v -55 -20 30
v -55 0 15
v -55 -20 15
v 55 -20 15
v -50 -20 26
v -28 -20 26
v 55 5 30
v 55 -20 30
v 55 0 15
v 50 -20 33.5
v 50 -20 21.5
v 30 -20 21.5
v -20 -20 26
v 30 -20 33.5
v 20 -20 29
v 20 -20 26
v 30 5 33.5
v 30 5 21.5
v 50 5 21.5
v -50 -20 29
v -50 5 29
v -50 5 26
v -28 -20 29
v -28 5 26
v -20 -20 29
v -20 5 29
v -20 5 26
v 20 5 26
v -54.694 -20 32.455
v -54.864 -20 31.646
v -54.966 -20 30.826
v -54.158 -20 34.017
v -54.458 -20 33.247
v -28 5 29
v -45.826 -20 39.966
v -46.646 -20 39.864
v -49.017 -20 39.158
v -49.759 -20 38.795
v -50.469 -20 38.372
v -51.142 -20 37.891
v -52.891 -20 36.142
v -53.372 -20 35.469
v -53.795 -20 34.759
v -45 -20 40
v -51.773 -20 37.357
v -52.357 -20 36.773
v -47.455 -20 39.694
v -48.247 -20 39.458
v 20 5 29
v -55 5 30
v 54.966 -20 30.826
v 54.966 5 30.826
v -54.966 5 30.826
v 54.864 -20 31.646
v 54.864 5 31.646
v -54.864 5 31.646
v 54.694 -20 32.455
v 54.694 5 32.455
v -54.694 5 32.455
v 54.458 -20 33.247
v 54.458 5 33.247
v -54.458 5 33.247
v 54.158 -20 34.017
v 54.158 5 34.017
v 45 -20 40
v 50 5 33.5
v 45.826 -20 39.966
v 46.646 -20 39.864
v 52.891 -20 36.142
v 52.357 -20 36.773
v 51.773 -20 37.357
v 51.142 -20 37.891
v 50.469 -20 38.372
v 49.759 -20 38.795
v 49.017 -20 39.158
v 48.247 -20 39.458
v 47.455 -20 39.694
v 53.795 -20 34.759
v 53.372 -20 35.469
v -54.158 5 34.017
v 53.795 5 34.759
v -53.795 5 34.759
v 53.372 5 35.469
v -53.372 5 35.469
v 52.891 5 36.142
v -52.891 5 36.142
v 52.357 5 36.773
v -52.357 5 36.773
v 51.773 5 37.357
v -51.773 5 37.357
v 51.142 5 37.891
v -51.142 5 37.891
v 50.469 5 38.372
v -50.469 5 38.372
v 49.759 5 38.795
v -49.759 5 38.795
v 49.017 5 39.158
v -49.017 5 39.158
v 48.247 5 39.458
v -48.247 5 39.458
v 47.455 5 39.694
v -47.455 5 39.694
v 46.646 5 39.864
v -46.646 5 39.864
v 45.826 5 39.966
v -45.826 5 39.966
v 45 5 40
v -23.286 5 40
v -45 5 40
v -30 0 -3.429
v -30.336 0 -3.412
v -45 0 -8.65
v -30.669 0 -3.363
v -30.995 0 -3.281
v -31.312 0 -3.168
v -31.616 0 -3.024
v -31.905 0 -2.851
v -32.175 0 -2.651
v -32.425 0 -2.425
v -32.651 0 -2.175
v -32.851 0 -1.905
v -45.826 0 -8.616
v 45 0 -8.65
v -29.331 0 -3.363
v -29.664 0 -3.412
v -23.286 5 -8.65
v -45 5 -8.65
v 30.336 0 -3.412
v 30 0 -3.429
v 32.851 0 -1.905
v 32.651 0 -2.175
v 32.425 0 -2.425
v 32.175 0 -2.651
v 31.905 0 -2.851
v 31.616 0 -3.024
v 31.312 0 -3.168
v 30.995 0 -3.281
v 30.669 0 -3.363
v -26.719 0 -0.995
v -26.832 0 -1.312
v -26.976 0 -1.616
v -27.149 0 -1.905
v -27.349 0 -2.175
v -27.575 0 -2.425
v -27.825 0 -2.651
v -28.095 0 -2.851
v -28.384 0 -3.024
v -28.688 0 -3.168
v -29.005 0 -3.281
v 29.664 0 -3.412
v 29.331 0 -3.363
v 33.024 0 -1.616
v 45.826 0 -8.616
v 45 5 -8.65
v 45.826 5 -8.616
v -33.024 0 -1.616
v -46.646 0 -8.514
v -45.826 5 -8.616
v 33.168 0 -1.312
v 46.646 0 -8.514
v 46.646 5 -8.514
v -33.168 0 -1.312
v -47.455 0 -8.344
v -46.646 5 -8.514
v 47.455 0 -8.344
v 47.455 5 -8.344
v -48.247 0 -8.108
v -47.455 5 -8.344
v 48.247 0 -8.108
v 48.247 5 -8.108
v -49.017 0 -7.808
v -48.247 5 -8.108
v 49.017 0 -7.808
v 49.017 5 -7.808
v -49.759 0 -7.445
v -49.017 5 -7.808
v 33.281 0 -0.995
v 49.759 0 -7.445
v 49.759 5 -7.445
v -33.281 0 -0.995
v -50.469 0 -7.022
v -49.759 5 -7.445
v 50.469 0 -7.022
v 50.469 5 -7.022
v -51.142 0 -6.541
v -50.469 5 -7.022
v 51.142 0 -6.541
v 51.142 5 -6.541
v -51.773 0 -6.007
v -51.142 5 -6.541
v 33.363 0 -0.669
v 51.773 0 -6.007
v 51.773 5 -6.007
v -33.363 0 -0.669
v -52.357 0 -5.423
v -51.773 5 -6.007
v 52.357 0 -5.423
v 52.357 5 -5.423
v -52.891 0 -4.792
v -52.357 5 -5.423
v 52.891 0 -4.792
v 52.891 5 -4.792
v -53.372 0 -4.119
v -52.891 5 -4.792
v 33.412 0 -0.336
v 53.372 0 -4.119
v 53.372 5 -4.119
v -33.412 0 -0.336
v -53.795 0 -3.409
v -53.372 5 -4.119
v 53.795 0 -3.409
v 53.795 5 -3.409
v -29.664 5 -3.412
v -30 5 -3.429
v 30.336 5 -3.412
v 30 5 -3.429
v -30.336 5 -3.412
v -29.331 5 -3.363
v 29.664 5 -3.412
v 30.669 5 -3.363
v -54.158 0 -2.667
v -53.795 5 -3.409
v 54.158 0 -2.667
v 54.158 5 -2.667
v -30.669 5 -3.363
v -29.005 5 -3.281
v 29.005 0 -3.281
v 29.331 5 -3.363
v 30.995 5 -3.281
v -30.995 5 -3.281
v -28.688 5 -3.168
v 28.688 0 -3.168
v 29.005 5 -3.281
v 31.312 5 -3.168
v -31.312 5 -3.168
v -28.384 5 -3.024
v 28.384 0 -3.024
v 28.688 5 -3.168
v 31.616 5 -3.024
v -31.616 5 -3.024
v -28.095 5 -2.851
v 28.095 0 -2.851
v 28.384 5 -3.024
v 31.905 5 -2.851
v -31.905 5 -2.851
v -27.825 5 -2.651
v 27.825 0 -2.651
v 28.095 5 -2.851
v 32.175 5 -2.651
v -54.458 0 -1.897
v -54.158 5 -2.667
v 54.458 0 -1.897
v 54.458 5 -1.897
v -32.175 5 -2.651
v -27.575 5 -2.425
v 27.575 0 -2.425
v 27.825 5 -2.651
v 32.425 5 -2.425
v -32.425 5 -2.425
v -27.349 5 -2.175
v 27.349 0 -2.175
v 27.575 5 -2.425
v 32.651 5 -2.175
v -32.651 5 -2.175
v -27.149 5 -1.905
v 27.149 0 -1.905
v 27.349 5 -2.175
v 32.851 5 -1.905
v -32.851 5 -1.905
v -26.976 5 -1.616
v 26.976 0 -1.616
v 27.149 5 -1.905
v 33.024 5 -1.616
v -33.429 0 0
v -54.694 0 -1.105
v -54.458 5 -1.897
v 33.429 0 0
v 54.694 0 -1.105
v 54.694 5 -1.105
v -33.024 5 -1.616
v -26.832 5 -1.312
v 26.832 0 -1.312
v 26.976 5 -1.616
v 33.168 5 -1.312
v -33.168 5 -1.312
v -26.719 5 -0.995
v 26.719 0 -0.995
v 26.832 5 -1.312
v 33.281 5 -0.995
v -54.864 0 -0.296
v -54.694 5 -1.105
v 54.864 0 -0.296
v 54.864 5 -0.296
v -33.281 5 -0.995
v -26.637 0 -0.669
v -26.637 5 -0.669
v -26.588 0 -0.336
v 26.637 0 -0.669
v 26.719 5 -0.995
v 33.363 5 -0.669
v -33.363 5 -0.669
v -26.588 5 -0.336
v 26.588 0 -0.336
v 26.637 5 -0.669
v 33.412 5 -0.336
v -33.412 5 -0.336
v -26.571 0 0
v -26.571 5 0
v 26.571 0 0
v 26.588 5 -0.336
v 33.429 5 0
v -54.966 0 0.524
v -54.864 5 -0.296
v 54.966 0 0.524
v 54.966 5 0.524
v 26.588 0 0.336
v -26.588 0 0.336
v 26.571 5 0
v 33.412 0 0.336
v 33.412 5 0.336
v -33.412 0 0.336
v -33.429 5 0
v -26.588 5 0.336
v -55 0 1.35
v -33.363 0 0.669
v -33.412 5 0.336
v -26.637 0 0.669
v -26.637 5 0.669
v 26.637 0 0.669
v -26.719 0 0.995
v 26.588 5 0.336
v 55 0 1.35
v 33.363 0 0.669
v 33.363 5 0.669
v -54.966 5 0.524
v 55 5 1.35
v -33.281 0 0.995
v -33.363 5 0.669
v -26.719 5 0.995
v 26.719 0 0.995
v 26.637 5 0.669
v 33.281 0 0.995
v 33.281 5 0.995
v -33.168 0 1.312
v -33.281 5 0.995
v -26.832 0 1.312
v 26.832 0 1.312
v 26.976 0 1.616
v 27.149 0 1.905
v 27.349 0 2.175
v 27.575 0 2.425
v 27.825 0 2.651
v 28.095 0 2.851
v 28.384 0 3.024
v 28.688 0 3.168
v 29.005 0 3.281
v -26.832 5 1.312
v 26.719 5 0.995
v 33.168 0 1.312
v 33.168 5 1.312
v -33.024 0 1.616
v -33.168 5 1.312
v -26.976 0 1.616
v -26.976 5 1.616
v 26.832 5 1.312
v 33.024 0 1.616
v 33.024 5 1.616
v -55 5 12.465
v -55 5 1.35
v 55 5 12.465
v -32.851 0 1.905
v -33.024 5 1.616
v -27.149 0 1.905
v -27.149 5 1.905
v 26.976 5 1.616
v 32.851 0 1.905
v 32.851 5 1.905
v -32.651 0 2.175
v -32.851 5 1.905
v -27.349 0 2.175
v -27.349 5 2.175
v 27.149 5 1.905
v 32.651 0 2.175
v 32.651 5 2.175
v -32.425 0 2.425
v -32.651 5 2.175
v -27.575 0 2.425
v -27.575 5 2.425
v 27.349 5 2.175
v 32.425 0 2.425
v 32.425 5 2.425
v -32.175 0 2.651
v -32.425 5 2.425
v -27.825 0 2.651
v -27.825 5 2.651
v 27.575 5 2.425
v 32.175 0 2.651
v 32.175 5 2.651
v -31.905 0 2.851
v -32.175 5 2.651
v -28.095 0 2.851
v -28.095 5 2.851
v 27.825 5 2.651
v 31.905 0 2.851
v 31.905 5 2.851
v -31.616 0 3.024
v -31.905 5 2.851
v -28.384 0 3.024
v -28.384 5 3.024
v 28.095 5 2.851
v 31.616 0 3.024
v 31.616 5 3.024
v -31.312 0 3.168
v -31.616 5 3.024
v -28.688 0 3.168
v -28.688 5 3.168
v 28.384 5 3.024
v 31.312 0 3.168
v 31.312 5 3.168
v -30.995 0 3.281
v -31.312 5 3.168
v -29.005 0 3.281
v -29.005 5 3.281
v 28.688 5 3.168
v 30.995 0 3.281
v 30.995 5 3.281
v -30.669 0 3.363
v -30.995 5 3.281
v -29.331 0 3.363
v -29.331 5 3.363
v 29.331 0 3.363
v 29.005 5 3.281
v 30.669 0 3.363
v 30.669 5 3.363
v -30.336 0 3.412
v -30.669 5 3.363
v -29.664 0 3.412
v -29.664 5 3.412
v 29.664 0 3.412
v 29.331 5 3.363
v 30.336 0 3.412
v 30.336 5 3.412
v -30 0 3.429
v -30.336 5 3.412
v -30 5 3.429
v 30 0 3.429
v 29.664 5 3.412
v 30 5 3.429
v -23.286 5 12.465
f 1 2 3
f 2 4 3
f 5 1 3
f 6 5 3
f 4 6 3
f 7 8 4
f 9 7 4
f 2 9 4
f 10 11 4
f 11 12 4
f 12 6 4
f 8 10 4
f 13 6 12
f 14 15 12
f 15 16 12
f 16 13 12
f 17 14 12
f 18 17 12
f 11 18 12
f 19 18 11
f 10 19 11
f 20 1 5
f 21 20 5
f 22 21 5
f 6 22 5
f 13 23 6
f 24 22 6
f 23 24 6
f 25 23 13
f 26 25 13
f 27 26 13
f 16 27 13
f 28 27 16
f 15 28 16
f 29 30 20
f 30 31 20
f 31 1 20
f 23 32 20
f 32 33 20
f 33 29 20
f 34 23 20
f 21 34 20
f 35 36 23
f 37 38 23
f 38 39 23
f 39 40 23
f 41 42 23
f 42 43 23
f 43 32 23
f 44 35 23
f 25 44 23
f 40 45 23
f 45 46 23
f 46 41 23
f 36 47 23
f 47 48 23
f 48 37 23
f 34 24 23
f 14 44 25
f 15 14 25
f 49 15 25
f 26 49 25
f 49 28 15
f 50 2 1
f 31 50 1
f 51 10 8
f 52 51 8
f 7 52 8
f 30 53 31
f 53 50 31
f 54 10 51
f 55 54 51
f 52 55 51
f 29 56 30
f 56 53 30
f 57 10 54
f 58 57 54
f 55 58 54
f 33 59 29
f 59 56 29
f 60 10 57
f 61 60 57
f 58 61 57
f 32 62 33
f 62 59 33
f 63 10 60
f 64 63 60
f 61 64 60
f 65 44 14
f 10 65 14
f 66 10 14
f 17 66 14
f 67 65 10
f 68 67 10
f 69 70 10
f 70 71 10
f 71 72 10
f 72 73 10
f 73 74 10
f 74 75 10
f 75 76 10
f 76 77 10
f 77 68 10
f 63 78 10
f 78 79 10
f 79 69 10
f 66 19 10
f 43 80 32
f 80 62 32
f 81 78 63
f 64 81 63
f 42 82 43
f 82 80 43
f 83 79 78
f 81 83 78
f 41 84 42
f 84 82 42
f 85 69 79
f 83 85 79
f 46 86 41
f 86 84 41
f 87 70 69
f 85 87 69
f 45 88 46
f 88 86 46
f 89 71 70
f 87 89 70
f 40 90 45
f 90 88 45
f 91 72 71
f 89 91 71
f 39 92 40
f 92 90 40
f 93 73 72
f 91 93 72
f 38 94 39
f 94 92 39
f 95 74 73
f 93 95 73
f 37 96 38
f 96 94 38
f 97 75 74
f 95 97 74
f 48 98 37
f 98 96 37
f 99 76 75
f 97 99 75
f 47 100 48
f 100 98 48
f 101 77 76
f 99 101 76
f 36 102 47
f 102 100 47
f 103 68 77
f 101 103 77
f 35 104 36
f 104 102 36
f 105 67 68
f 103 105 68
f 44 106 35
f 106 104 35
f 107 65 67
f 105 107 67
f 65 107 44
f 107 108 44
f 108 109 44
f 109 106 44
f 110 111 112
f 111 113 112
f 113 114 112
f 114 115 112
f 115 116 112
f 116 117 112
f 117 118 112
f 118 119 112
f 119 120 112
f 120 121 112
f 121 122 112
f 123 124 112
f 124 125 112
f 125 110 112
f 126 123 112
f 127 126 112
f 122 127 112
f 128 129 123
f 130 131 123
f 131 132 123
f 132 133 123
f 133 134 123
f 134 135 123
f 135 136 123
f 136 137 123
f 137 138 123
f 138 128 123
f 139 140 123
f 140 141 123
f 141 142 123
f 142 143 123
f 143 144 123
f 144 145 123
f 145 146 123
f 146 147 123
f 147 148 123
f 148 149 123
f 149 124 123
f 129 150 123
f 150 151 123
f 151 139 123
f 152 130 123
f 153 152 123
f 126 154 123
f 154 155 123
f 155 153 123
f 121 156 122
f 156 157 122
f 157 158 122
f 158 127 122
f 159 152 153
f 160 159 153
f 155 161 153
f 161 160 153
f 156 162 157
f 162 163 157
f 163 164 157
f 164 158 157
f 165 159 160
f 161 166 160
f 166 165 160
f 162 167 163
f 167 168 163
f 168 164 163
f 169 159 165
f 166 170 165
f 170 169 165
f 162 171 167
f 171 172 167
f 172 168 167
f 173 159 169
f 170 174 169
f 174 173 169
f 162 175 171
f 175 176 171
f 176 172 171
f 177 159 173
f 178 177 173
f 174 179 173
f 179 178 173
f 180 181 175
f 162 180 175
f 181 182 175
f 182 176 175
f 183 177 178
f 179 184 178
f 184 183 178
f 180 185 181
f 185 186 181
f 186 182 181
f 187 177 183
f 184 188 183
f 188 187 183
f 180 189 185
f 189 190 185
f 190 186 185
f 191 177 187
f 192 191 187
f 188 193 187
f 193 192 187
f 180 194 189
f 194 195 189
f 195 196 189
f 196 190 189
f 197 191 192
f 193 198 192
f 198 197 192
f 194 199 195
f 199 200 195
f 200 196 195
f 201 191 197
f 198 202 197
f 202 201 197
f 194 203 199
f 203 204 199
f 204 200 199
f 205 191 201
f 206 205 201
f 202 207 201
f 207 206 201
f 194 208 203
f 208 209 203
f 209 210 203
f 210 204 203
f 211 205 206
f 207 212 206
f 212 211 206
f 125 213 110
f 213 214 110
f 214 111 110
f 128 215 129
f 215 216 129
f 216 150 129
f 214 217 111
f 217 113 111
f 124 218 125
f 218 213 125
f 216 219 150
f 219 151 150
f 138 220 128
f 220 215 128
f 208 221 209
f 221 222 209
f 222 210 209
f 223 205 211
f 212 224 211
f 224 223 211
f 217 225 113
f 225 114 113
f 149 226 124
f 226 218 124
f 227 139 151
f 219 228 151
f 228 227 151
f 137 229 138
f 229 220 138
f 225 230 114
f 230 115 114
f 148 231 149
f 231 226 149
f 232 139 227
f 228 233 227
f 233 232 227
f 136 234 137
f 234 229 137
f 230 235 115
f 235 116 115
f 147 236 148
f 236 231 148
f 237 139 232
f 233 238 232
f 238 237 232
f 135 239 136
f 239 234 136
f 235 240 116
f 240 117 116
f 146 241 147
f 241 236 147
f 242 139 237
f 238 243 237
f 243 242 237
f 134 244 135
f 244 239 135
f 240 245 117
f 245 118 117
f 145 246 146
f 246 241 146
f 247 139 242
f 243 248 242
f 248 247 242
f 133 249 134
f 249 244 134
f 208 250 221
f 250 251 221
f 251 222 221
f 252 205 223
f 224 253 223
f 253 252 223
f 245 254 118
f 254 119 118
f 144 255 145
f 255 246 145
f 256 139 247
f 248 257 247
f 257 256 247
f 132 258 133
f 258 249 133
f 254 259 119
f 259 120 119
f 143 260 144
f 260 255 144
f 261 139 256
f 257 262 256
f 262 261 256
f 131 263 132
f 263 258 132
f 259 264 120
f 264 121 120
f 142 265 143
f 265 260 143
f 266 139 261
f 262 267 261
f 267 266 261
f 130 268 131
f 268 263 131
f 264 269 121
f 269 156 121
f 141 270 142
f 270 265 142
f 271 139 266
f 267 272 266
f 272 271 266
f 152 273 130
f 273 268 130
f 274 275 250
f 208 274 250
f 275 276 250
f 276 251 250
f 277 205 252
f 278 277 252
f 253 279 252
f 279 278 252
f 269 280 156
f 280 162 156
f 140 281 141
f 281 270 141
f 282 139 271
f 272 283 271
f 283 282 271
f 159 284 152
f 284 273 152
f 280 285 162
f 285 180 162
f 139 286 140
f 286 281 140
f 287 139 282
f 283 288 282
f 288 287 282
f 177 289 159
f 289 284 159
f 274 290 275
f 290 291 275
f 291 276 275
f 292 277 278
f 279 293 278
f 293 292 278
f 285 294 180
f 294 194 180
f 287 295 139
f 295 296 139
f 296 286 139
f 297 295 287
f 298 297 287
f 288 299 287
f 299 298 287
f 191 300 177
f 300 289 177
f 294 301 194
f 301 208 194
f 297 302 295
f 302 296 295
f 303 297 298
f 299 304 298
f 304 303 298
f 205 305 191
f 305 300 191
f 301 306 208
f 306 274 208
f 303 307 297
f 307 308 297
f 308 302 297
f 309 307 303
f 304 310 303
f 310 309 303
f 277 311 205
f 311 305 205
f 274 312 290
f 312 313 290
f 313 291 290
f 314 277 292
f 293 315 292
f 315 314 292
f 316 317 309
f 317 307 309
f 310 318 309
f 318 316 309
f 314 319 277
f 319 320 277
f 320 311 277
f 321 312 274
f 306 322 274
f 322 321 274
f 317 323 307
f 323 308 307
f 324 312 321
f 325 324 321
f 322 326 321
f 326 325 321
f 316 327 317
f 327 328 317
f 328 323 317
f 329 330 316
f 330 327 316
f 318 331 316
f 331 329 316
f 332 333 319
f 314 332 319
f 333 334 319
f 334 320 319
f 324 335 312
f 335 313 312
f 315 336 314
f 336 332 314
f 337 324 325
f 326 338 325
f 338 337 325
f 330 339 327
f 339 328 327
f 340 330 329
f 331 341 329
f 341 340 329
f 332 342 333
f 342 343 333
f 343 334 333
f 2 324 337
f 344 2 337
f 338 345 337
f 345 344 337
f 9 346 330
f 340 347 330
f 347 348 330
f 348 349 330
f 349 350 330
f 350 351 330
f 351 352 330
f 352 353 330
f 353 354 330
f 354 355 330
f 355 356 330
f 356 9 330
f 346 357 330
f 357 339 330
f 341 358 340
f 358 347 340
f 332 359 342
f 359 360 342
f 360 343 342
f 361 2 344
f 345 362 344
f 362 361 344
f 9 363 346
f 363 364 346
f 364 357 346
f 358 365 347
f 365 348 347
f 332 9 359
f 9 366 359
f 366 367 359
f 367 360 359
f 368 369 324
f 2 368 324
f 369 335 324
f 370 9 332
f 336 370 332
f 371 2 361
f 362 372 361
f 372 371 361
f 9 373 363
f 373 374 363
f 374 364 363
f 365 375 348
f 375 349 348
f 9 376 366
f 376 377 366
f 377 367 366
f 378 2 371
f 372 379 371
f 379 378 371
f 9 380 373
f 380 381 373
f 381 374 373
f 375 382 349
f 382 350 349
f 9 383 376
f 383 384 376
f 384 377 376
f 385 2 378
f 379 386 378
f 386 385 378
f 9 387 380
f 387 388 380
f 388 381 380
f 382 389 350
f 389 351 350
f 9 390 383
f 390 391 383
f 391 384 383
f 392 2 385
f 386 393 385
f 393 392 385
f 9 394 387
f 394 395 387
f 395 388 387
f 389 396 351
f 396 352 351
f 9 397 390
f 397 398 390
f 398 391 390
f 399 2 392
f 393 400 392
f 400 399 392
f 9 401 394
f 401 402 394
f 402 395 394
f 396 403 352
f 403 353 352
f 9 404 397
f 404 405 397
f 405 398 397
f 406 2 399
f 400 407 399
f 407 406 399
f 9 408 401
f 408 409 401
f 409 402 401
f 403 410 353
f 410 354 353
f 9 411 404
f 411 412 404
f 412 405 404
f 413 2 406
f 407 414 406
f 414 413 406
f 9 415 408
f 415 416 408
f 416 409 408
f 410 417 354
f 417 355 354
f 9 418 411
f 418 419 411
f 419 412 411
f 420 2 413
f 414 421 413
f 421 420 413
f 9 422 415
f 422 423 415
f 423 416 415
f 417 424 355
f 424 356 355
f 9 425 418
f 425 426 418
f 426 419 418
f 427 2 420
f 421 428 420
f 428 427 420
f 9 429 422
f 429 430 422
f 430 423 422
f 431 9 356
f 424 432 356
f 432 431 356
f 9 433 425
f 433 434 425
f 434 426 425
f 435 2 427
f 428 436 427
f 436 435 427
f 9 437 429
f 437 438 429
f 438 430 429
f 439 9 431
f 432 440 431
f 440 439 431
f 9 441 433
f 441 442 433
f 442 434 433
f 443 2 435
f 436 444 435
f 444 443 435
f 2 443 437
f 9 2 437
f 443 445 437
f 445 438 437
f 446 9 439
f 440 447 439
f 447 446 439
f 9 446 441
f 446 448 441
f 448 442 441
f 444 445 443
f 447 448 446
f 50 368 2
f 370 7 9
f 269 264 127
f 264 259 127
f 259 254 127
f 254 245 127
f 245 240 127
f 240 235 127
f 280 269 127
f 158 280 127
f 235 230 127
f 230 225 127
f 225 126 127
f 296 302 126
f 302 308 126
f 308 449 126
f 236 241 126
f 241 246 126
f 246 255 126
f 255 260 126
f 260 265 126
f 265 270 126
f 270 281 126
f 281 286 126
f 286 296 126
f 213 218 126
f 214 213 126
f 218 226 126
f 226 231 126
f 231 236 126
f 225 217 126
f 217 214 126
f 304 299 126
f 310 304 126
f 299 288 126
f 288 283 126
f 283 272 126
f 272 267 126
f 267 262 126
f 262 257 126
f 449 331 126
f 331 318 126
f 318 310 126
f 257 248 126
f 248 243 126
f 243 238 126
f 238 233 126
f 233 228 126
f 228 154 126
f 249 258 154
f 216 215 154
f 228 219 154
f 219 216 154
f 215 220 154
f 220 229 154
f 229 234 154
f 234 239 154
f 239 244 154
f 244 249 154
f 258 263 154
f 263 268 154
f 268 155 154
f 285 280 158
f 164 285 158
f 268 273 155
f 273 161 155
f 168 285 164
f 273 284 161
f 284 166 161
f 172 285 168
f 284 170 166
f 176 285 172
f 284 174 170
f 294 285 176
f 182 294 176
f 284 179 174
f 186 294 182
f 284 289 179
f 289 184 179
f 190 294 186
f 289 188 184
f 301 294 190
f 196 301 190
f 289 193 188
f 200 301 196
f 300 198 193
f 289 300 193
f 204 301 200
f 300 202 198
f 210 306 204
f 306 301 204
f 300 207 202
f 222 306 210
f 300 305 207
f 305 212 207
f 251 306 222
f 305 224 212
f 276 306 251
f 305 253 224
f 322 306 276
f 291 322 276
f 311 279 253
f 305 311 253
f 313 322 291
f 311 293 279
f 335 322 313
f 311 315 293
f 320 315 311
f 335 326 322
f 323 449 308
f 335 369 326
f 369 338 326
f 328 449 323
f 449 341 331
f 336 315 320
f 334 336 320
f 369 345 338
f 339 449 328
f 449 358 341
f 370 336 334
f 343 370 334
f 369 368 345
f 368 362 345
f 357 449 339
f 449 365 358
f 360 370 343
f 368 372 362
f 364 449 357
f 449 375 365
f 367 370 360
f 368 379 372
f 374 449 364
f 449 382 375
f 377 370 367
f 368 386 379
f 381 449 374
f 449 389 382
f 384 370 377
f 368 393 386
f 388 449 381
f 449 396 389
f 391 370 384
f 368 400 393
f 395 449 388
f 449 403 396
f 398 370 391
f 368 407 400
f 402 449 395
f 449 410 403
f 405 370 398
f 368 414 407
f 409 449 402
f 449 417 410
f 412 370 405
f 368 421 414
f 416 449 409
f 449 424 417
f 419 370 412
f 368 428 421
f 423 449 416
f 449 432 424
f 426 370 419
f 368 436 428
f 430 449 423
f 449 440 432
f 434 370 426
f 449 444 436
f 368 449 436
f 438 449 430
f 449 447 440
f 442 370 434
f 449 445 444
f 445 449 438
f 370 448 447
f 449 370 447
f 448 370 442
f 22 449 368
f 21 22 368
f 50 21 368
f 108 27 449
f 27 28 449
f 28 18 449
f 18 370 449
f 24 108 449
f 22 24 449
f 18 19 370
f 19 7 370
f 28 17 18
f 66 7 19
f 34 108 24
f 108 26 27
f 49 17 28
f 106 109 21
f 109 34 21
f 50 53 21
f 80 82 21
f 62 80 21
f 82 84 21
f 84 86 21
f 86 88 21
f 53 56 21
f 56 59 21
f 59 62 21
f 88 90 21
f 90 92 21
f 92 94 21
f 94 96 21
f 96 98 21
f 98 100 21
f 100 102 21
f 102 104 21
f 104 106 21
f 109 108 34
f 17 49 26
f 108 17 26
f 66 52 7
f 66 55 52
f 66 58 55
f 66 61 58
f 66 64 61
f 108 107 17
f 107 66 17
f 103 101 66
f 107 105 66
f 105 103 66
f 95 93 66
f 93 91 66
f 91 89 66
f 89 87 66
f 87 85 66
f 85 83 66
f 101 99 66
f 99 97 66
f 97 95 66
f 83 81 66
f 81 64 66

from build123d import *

# Parameters (mm, degrees)
SKETCH1_W           = 110
SKETCH1_H           = 30
BOSS_EXTRUDE1_DEPTH = 5
SKETCH2_W           = 110
SKETCH2_H           = 25
BOSS_EXTRUDE2_DEPTH = 25
SKETCH6_R           = 3.429
CUT_EXTRUDE4_DEPTH  = 73.456883731
SKETCH7_W           = 40
SKETCH7_H           = 3
SKETCH7_W_2         = 20
SKETCH7_H_2         = 12
SKETCH7_W_3         = 22
CUT_EXTRUDE5_DEPTH  = 73.456883731
SKETCH8_W           = 110
SKETCH8_H           = 6.35
CUT_EXTRUDE6_DEPTH  = 73.456883731
FILLET1_R           = 10


with BuildPart() as part:
    # Sketch1 → Boss-Extrude1 (new body)
    with BuildSketch(Plane(origin=(0, 0, 0), x_dir=(1, 0, 0), z_dir=(0, 1, 0))):
        Rectangle(SKETCH1_W, SKETCH1_H)
    extrude(amount=BOSS_EXTRUDE1_DEPTH)

    # Sketch2 → Boss-Extrude2 (add)
    with BuildSketch(Plane.XY.offset(15)):
        with Locations((0, -7.5)):
            Rectangle(SKETCH2_W, SKETCH2_H)
    extrude(amount=BOSS_EXTRUDE2_DEPTH)

    # Sketch6 → Cut-Extrude4 (cut, through all)
    with BuildSketch(Plane(origin=(0, 5, 0), x_dir=(1, 0, 0), z_dir=(0, 1, 0))):
        with Locations(Location((-30, 0, 0), (0, 0, 270))):
            Circle(SKETCH6_R)
        with Locations(Location((30, 0, 0), (0, 0, 270))):
            Circle(SKETCH6_R)
    extrude(amount=-CUT_EXTRUDE4_DEPTH, mode=Mode.SUBTRACT)

    # Sketch7 → Cut-Extrude5 (cut, through all)
    with BuildSketch(Plane(origin=(0, 5, 0), x_dir=(1, 0, 0), z_dir=(0, 1, 0))):
        with Locations((0, -27.5)):
            Rectangle(SKETCH7_W, SKETCH7_H)
        with Locations((40, -27.5)):
            Rectangle(SKETCH7_W_2, SKETCH7_H_2)
        with Locations((-39, -27.5)):
            Rectangle(SKETCH7_W_3, SKETCH7_H)
    extrude(amount=-CUT_EXTRUDE5_DEPTH, mode=Mode.SUBTRACT)

    # Sketch8 → Cut-Extrude6 (cut, through all)
    with BuildSketch(Plane(origin=(0, 5, 0), x_dir=(1, 0, 0), z_dir=(0, 1, 0))):
        with Locations((0, 11.825)):
            Rectangle(SKETCH8_W, SKETCH8_H)
    extrude(amount=-CUT_EXTRUDE6_DEPTH, mode=Mode.SUBTRACT)

    # Fillet1
    fillet1_edges = [part.edges().sort_by_distance(p)[0] for p in [
        (-55, -7.5, 40),
        (55, -7.5, 40),
        (-55, 2.5, -8.65),
        (55, 2.5, -8.65),
    ]]
    fillet(fillet1_edges, radius=FILLET1_R)


solid = part.part
